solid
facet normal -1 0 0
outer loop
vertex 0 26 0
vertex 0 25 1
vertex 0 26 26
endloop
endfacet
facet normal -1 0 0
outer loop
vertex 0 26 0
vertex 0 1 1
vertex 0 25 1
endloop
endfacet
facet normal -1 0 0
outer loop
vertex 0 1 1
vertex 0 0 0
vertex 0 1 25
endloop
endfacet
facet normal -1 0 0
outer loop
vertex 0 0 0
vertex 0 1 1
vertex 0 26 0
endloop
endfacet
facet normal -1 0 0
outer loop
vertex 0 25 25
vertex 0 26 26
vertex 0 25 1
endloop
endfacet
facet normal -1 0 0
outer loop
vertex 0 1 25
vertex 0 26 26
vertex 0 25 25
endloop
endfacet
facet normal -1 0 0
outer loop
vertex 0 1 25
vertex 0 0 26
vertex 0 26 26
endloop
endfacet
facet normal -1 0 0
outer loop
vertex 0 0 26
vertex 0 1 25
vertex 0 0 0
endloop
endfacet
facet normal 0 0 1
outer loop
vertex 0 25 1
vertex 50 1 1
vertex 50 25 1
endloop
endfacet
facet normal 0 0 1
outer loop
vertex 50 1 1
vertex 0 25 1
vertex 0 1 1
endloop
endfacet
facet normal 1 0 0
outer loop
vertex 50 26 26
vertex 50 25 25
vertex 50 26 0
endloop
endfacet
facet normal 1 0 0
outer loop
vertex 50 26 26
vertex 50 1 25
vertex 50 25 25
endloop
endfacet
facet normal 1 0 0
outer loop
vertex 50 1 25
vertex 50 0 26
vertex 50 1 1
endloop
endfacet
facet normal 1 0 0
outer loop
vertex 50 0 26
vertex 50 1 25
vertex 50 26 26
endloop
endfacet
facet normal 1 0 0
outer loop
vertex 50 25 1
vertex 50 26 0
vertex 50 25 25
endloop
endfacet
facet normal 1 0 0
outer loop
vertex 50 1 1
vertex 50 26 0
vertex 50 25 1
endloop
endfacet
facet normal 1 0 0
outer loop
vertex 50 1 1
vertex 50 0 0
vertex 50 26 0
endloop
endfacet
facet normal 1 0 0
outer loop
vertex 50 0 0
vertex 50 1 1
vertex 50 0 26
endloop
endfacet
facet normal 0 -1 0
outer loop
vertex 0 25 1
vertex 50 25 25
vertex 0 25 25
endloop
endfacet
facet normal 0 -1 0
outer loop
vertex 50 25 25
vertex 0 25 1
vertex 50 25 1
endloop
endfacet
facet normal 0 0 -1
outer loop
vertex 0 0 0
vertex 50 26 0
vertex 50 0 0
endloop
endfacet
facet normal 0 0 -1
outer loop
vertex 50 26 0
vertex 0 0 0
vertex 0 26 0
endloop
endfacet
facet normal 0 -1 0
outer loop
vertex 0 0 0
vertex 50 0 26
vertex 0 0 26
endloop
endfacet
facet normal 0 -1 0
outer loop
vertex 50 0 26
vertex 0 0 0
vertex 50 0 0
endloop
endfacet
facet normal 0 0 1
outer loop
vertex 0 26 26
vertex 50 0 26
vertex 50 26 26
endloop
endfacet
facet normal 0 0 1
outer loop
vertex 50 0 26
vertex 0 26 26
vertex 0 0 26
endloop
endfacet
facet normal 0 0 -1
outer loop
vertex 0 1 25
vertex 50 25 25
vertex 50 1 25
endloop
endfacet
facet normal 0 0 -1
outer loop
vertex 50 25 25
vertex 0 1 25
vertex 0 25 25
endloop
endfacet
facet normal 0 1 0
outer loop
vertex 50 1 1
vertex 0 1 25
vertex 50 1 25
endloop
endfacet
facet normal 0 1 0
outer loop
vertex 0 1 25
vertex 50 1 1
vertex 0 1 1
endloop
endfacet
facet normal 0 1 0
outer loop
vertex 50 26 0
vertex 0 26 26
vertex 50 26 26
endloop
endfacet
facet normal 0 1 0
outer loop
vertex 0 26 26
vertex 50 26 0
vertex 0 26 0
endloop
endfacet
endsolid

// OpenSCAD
// Kitchen Sink Light - USB battery version.

h=50;
w=25;


t=1 ;




//translate([0,0,w]) rotate([-90,0,0]) cube([h,t,w]);

cube([h,w,t]);
translate([0,0,w]) cube([h,w,t]);

cube([h,t,w]);
translate([0,w,0]) cube([h,t,w+t]);
